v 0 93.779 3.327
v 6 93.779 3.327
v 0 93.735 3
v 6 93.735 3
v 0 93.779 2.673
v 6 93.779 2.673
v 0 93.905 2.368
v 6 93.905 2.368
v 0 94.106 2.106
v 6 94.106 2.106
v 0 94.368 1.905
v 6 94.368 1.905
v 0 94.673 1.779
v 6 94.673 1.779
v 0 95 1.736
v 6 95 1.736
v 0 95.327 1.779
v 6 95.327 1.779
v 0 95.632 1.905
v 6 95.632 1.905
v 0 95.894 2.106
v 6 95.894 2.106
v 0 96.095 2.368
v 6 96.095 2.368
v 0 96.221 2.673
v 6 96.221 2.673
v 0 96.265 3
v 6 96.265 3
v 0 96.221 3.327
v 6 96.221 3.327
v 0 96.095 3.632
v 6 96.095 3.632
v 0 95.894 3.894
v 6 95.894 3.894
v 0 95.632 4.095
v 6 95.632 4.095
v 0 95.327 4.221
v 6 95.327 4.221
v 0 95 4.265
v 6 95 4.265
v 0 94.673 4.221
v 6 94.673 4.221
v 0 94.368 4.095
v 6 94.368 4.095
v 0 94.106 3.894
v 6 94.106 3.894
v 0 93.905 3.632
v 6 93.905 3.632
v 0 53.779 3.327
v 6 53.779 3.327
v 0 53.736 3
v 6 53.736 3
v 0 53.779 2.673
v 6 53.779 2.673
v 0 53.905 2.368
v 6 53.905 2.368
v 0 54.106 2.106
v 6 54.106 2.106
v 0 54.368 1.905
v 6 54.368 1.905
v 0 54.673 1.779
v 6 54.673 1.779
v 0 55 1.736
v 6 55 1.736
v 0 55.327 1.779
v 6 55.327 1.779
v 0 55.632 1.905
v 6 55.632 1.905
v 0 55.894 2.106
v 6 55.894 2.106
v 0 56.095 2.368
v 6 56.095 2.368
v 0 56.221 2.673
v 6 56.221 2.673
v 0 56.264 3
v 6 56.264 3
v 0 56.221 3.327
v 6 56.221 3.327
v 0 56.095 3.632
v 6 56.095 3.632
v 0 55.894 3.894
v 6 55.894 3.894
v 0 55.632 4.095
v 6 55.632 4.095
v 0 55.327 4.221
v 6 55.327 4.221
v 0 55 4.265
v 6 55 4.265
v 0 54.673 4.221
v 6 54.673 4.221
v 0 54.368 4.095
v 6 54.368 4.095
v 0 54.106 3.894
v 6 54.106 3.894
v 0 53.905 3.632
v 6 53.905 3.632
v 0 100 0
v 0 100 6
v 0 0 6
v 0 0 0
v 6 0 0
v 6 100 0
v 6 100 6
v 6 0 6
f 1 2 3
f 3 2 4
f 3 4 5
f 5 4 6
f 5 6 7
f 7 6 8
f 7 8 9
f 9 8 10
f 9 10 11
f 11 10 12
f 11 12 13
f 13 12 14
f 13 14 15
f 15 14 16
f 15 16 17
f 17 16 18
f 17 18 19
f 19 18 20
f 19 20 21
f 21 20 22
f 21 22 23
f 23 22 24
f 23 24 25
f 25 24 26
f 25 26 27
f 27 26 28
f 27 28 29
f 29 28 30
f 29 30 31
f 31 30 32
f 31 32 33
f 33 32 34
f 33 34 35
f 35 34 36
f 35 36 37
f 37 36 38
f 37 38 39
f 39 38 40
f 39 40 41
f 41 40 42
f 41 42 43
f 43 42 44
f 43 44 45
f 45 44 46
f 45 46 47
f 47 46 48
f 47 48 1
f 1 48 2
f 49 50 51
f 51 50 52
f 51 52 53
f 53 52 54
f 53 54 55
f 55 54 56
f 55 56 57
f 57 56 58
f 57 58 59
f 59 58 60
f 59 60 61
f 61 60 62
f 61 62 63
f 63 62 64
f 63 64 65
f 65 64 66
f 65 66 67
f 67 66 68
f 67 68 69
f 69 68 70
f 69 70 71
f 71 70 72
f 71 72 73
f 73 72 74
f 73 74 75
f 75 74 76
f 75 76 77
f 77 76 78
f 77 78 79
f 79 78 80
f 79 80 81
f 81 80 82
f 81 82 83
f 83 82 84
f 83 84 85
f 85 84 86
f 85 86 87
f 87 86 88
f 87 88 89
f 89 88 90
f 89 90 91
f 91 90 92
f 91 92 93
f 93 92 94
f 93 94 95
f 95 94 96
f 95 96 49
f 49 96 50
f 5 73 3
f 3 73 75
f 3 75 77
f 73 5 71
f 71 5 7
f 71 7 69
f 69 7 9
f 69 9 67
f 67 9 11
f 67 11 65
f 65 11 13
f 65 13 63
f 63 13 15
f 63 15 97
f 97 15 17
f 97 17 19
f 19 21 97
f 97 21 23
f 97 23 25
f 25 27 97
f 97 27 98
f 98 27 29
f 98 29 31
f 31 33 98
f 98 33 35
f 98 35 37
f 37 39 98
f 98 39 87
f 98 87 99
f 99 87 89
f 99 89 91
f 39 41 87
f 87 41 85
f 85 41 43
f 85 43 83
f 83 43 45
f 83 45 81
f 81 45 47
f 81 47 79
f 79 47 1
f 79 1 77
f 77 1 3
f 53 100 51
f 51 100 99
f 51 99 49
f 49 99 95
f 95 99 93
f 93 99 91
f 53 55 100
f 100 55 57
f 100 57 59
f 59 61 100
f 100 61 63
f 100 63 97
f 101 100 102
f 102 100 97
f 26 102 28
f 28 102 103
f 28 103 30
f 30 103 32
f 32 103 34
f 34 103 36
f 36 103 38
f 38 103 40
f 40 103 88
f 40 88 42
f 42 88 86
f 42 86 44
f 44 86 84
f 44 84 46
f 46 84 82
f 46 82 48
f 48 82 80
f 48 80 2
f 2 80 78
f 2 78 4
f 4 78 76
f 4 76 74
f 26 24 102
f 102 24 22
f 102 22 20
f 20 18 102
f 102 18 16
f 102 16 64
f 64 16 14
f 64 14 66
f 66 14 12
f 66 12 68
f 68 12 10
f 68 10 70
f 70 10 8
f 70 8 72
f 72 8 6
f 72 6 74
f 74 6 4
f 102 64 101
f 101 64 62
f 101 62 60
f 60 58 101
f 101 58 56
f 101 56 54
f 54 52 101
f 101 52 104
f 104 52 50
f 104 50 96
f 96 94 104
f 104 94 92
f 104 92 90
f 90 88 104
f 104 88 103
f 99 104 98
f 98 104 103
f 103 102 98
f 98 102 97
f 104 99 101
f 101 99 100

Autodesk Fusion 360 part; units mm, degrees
sketch "Skizze1" plane through (0, 0, 0) normal (0, 1, 0) x (1, 0, 0)
  line L0 (0, 0) -> (6, 0)
  line L1 (6, 0) -> (6, -6)
  line L2 (6, -6) -> (0, -6)
  line L3 (0, -6) -> (0, 0)
  dimension "d1" = 6
  dimension "d2" = 6
extrude "Extrusion1" add sketch "Skizze1" along normal blind 100
sketch "Skizze2" plane through (6, 0, 0) normal (1, 0, 0) x (0, 1, 0)
  line L0 (0, 6) -> (0, 0)
  line L1 (0, 0) -> (100, 0)
  line L2 (100, 0) -> (100, 6)
  line L3 (100, 6) -> (0, 6)
  point P0 (95, 3)
  point P1 (55, 3)
  dimension "d5" = 3
  dimension "d6" = 3
  dimension "d7" = 5
  dimension "d8" = 45
hole "Bohrung1" at (6, 95, 3) at (6, 55, 3) direction (-1, 0, 0) diameter 2.529 depth 30 tip angle 118
